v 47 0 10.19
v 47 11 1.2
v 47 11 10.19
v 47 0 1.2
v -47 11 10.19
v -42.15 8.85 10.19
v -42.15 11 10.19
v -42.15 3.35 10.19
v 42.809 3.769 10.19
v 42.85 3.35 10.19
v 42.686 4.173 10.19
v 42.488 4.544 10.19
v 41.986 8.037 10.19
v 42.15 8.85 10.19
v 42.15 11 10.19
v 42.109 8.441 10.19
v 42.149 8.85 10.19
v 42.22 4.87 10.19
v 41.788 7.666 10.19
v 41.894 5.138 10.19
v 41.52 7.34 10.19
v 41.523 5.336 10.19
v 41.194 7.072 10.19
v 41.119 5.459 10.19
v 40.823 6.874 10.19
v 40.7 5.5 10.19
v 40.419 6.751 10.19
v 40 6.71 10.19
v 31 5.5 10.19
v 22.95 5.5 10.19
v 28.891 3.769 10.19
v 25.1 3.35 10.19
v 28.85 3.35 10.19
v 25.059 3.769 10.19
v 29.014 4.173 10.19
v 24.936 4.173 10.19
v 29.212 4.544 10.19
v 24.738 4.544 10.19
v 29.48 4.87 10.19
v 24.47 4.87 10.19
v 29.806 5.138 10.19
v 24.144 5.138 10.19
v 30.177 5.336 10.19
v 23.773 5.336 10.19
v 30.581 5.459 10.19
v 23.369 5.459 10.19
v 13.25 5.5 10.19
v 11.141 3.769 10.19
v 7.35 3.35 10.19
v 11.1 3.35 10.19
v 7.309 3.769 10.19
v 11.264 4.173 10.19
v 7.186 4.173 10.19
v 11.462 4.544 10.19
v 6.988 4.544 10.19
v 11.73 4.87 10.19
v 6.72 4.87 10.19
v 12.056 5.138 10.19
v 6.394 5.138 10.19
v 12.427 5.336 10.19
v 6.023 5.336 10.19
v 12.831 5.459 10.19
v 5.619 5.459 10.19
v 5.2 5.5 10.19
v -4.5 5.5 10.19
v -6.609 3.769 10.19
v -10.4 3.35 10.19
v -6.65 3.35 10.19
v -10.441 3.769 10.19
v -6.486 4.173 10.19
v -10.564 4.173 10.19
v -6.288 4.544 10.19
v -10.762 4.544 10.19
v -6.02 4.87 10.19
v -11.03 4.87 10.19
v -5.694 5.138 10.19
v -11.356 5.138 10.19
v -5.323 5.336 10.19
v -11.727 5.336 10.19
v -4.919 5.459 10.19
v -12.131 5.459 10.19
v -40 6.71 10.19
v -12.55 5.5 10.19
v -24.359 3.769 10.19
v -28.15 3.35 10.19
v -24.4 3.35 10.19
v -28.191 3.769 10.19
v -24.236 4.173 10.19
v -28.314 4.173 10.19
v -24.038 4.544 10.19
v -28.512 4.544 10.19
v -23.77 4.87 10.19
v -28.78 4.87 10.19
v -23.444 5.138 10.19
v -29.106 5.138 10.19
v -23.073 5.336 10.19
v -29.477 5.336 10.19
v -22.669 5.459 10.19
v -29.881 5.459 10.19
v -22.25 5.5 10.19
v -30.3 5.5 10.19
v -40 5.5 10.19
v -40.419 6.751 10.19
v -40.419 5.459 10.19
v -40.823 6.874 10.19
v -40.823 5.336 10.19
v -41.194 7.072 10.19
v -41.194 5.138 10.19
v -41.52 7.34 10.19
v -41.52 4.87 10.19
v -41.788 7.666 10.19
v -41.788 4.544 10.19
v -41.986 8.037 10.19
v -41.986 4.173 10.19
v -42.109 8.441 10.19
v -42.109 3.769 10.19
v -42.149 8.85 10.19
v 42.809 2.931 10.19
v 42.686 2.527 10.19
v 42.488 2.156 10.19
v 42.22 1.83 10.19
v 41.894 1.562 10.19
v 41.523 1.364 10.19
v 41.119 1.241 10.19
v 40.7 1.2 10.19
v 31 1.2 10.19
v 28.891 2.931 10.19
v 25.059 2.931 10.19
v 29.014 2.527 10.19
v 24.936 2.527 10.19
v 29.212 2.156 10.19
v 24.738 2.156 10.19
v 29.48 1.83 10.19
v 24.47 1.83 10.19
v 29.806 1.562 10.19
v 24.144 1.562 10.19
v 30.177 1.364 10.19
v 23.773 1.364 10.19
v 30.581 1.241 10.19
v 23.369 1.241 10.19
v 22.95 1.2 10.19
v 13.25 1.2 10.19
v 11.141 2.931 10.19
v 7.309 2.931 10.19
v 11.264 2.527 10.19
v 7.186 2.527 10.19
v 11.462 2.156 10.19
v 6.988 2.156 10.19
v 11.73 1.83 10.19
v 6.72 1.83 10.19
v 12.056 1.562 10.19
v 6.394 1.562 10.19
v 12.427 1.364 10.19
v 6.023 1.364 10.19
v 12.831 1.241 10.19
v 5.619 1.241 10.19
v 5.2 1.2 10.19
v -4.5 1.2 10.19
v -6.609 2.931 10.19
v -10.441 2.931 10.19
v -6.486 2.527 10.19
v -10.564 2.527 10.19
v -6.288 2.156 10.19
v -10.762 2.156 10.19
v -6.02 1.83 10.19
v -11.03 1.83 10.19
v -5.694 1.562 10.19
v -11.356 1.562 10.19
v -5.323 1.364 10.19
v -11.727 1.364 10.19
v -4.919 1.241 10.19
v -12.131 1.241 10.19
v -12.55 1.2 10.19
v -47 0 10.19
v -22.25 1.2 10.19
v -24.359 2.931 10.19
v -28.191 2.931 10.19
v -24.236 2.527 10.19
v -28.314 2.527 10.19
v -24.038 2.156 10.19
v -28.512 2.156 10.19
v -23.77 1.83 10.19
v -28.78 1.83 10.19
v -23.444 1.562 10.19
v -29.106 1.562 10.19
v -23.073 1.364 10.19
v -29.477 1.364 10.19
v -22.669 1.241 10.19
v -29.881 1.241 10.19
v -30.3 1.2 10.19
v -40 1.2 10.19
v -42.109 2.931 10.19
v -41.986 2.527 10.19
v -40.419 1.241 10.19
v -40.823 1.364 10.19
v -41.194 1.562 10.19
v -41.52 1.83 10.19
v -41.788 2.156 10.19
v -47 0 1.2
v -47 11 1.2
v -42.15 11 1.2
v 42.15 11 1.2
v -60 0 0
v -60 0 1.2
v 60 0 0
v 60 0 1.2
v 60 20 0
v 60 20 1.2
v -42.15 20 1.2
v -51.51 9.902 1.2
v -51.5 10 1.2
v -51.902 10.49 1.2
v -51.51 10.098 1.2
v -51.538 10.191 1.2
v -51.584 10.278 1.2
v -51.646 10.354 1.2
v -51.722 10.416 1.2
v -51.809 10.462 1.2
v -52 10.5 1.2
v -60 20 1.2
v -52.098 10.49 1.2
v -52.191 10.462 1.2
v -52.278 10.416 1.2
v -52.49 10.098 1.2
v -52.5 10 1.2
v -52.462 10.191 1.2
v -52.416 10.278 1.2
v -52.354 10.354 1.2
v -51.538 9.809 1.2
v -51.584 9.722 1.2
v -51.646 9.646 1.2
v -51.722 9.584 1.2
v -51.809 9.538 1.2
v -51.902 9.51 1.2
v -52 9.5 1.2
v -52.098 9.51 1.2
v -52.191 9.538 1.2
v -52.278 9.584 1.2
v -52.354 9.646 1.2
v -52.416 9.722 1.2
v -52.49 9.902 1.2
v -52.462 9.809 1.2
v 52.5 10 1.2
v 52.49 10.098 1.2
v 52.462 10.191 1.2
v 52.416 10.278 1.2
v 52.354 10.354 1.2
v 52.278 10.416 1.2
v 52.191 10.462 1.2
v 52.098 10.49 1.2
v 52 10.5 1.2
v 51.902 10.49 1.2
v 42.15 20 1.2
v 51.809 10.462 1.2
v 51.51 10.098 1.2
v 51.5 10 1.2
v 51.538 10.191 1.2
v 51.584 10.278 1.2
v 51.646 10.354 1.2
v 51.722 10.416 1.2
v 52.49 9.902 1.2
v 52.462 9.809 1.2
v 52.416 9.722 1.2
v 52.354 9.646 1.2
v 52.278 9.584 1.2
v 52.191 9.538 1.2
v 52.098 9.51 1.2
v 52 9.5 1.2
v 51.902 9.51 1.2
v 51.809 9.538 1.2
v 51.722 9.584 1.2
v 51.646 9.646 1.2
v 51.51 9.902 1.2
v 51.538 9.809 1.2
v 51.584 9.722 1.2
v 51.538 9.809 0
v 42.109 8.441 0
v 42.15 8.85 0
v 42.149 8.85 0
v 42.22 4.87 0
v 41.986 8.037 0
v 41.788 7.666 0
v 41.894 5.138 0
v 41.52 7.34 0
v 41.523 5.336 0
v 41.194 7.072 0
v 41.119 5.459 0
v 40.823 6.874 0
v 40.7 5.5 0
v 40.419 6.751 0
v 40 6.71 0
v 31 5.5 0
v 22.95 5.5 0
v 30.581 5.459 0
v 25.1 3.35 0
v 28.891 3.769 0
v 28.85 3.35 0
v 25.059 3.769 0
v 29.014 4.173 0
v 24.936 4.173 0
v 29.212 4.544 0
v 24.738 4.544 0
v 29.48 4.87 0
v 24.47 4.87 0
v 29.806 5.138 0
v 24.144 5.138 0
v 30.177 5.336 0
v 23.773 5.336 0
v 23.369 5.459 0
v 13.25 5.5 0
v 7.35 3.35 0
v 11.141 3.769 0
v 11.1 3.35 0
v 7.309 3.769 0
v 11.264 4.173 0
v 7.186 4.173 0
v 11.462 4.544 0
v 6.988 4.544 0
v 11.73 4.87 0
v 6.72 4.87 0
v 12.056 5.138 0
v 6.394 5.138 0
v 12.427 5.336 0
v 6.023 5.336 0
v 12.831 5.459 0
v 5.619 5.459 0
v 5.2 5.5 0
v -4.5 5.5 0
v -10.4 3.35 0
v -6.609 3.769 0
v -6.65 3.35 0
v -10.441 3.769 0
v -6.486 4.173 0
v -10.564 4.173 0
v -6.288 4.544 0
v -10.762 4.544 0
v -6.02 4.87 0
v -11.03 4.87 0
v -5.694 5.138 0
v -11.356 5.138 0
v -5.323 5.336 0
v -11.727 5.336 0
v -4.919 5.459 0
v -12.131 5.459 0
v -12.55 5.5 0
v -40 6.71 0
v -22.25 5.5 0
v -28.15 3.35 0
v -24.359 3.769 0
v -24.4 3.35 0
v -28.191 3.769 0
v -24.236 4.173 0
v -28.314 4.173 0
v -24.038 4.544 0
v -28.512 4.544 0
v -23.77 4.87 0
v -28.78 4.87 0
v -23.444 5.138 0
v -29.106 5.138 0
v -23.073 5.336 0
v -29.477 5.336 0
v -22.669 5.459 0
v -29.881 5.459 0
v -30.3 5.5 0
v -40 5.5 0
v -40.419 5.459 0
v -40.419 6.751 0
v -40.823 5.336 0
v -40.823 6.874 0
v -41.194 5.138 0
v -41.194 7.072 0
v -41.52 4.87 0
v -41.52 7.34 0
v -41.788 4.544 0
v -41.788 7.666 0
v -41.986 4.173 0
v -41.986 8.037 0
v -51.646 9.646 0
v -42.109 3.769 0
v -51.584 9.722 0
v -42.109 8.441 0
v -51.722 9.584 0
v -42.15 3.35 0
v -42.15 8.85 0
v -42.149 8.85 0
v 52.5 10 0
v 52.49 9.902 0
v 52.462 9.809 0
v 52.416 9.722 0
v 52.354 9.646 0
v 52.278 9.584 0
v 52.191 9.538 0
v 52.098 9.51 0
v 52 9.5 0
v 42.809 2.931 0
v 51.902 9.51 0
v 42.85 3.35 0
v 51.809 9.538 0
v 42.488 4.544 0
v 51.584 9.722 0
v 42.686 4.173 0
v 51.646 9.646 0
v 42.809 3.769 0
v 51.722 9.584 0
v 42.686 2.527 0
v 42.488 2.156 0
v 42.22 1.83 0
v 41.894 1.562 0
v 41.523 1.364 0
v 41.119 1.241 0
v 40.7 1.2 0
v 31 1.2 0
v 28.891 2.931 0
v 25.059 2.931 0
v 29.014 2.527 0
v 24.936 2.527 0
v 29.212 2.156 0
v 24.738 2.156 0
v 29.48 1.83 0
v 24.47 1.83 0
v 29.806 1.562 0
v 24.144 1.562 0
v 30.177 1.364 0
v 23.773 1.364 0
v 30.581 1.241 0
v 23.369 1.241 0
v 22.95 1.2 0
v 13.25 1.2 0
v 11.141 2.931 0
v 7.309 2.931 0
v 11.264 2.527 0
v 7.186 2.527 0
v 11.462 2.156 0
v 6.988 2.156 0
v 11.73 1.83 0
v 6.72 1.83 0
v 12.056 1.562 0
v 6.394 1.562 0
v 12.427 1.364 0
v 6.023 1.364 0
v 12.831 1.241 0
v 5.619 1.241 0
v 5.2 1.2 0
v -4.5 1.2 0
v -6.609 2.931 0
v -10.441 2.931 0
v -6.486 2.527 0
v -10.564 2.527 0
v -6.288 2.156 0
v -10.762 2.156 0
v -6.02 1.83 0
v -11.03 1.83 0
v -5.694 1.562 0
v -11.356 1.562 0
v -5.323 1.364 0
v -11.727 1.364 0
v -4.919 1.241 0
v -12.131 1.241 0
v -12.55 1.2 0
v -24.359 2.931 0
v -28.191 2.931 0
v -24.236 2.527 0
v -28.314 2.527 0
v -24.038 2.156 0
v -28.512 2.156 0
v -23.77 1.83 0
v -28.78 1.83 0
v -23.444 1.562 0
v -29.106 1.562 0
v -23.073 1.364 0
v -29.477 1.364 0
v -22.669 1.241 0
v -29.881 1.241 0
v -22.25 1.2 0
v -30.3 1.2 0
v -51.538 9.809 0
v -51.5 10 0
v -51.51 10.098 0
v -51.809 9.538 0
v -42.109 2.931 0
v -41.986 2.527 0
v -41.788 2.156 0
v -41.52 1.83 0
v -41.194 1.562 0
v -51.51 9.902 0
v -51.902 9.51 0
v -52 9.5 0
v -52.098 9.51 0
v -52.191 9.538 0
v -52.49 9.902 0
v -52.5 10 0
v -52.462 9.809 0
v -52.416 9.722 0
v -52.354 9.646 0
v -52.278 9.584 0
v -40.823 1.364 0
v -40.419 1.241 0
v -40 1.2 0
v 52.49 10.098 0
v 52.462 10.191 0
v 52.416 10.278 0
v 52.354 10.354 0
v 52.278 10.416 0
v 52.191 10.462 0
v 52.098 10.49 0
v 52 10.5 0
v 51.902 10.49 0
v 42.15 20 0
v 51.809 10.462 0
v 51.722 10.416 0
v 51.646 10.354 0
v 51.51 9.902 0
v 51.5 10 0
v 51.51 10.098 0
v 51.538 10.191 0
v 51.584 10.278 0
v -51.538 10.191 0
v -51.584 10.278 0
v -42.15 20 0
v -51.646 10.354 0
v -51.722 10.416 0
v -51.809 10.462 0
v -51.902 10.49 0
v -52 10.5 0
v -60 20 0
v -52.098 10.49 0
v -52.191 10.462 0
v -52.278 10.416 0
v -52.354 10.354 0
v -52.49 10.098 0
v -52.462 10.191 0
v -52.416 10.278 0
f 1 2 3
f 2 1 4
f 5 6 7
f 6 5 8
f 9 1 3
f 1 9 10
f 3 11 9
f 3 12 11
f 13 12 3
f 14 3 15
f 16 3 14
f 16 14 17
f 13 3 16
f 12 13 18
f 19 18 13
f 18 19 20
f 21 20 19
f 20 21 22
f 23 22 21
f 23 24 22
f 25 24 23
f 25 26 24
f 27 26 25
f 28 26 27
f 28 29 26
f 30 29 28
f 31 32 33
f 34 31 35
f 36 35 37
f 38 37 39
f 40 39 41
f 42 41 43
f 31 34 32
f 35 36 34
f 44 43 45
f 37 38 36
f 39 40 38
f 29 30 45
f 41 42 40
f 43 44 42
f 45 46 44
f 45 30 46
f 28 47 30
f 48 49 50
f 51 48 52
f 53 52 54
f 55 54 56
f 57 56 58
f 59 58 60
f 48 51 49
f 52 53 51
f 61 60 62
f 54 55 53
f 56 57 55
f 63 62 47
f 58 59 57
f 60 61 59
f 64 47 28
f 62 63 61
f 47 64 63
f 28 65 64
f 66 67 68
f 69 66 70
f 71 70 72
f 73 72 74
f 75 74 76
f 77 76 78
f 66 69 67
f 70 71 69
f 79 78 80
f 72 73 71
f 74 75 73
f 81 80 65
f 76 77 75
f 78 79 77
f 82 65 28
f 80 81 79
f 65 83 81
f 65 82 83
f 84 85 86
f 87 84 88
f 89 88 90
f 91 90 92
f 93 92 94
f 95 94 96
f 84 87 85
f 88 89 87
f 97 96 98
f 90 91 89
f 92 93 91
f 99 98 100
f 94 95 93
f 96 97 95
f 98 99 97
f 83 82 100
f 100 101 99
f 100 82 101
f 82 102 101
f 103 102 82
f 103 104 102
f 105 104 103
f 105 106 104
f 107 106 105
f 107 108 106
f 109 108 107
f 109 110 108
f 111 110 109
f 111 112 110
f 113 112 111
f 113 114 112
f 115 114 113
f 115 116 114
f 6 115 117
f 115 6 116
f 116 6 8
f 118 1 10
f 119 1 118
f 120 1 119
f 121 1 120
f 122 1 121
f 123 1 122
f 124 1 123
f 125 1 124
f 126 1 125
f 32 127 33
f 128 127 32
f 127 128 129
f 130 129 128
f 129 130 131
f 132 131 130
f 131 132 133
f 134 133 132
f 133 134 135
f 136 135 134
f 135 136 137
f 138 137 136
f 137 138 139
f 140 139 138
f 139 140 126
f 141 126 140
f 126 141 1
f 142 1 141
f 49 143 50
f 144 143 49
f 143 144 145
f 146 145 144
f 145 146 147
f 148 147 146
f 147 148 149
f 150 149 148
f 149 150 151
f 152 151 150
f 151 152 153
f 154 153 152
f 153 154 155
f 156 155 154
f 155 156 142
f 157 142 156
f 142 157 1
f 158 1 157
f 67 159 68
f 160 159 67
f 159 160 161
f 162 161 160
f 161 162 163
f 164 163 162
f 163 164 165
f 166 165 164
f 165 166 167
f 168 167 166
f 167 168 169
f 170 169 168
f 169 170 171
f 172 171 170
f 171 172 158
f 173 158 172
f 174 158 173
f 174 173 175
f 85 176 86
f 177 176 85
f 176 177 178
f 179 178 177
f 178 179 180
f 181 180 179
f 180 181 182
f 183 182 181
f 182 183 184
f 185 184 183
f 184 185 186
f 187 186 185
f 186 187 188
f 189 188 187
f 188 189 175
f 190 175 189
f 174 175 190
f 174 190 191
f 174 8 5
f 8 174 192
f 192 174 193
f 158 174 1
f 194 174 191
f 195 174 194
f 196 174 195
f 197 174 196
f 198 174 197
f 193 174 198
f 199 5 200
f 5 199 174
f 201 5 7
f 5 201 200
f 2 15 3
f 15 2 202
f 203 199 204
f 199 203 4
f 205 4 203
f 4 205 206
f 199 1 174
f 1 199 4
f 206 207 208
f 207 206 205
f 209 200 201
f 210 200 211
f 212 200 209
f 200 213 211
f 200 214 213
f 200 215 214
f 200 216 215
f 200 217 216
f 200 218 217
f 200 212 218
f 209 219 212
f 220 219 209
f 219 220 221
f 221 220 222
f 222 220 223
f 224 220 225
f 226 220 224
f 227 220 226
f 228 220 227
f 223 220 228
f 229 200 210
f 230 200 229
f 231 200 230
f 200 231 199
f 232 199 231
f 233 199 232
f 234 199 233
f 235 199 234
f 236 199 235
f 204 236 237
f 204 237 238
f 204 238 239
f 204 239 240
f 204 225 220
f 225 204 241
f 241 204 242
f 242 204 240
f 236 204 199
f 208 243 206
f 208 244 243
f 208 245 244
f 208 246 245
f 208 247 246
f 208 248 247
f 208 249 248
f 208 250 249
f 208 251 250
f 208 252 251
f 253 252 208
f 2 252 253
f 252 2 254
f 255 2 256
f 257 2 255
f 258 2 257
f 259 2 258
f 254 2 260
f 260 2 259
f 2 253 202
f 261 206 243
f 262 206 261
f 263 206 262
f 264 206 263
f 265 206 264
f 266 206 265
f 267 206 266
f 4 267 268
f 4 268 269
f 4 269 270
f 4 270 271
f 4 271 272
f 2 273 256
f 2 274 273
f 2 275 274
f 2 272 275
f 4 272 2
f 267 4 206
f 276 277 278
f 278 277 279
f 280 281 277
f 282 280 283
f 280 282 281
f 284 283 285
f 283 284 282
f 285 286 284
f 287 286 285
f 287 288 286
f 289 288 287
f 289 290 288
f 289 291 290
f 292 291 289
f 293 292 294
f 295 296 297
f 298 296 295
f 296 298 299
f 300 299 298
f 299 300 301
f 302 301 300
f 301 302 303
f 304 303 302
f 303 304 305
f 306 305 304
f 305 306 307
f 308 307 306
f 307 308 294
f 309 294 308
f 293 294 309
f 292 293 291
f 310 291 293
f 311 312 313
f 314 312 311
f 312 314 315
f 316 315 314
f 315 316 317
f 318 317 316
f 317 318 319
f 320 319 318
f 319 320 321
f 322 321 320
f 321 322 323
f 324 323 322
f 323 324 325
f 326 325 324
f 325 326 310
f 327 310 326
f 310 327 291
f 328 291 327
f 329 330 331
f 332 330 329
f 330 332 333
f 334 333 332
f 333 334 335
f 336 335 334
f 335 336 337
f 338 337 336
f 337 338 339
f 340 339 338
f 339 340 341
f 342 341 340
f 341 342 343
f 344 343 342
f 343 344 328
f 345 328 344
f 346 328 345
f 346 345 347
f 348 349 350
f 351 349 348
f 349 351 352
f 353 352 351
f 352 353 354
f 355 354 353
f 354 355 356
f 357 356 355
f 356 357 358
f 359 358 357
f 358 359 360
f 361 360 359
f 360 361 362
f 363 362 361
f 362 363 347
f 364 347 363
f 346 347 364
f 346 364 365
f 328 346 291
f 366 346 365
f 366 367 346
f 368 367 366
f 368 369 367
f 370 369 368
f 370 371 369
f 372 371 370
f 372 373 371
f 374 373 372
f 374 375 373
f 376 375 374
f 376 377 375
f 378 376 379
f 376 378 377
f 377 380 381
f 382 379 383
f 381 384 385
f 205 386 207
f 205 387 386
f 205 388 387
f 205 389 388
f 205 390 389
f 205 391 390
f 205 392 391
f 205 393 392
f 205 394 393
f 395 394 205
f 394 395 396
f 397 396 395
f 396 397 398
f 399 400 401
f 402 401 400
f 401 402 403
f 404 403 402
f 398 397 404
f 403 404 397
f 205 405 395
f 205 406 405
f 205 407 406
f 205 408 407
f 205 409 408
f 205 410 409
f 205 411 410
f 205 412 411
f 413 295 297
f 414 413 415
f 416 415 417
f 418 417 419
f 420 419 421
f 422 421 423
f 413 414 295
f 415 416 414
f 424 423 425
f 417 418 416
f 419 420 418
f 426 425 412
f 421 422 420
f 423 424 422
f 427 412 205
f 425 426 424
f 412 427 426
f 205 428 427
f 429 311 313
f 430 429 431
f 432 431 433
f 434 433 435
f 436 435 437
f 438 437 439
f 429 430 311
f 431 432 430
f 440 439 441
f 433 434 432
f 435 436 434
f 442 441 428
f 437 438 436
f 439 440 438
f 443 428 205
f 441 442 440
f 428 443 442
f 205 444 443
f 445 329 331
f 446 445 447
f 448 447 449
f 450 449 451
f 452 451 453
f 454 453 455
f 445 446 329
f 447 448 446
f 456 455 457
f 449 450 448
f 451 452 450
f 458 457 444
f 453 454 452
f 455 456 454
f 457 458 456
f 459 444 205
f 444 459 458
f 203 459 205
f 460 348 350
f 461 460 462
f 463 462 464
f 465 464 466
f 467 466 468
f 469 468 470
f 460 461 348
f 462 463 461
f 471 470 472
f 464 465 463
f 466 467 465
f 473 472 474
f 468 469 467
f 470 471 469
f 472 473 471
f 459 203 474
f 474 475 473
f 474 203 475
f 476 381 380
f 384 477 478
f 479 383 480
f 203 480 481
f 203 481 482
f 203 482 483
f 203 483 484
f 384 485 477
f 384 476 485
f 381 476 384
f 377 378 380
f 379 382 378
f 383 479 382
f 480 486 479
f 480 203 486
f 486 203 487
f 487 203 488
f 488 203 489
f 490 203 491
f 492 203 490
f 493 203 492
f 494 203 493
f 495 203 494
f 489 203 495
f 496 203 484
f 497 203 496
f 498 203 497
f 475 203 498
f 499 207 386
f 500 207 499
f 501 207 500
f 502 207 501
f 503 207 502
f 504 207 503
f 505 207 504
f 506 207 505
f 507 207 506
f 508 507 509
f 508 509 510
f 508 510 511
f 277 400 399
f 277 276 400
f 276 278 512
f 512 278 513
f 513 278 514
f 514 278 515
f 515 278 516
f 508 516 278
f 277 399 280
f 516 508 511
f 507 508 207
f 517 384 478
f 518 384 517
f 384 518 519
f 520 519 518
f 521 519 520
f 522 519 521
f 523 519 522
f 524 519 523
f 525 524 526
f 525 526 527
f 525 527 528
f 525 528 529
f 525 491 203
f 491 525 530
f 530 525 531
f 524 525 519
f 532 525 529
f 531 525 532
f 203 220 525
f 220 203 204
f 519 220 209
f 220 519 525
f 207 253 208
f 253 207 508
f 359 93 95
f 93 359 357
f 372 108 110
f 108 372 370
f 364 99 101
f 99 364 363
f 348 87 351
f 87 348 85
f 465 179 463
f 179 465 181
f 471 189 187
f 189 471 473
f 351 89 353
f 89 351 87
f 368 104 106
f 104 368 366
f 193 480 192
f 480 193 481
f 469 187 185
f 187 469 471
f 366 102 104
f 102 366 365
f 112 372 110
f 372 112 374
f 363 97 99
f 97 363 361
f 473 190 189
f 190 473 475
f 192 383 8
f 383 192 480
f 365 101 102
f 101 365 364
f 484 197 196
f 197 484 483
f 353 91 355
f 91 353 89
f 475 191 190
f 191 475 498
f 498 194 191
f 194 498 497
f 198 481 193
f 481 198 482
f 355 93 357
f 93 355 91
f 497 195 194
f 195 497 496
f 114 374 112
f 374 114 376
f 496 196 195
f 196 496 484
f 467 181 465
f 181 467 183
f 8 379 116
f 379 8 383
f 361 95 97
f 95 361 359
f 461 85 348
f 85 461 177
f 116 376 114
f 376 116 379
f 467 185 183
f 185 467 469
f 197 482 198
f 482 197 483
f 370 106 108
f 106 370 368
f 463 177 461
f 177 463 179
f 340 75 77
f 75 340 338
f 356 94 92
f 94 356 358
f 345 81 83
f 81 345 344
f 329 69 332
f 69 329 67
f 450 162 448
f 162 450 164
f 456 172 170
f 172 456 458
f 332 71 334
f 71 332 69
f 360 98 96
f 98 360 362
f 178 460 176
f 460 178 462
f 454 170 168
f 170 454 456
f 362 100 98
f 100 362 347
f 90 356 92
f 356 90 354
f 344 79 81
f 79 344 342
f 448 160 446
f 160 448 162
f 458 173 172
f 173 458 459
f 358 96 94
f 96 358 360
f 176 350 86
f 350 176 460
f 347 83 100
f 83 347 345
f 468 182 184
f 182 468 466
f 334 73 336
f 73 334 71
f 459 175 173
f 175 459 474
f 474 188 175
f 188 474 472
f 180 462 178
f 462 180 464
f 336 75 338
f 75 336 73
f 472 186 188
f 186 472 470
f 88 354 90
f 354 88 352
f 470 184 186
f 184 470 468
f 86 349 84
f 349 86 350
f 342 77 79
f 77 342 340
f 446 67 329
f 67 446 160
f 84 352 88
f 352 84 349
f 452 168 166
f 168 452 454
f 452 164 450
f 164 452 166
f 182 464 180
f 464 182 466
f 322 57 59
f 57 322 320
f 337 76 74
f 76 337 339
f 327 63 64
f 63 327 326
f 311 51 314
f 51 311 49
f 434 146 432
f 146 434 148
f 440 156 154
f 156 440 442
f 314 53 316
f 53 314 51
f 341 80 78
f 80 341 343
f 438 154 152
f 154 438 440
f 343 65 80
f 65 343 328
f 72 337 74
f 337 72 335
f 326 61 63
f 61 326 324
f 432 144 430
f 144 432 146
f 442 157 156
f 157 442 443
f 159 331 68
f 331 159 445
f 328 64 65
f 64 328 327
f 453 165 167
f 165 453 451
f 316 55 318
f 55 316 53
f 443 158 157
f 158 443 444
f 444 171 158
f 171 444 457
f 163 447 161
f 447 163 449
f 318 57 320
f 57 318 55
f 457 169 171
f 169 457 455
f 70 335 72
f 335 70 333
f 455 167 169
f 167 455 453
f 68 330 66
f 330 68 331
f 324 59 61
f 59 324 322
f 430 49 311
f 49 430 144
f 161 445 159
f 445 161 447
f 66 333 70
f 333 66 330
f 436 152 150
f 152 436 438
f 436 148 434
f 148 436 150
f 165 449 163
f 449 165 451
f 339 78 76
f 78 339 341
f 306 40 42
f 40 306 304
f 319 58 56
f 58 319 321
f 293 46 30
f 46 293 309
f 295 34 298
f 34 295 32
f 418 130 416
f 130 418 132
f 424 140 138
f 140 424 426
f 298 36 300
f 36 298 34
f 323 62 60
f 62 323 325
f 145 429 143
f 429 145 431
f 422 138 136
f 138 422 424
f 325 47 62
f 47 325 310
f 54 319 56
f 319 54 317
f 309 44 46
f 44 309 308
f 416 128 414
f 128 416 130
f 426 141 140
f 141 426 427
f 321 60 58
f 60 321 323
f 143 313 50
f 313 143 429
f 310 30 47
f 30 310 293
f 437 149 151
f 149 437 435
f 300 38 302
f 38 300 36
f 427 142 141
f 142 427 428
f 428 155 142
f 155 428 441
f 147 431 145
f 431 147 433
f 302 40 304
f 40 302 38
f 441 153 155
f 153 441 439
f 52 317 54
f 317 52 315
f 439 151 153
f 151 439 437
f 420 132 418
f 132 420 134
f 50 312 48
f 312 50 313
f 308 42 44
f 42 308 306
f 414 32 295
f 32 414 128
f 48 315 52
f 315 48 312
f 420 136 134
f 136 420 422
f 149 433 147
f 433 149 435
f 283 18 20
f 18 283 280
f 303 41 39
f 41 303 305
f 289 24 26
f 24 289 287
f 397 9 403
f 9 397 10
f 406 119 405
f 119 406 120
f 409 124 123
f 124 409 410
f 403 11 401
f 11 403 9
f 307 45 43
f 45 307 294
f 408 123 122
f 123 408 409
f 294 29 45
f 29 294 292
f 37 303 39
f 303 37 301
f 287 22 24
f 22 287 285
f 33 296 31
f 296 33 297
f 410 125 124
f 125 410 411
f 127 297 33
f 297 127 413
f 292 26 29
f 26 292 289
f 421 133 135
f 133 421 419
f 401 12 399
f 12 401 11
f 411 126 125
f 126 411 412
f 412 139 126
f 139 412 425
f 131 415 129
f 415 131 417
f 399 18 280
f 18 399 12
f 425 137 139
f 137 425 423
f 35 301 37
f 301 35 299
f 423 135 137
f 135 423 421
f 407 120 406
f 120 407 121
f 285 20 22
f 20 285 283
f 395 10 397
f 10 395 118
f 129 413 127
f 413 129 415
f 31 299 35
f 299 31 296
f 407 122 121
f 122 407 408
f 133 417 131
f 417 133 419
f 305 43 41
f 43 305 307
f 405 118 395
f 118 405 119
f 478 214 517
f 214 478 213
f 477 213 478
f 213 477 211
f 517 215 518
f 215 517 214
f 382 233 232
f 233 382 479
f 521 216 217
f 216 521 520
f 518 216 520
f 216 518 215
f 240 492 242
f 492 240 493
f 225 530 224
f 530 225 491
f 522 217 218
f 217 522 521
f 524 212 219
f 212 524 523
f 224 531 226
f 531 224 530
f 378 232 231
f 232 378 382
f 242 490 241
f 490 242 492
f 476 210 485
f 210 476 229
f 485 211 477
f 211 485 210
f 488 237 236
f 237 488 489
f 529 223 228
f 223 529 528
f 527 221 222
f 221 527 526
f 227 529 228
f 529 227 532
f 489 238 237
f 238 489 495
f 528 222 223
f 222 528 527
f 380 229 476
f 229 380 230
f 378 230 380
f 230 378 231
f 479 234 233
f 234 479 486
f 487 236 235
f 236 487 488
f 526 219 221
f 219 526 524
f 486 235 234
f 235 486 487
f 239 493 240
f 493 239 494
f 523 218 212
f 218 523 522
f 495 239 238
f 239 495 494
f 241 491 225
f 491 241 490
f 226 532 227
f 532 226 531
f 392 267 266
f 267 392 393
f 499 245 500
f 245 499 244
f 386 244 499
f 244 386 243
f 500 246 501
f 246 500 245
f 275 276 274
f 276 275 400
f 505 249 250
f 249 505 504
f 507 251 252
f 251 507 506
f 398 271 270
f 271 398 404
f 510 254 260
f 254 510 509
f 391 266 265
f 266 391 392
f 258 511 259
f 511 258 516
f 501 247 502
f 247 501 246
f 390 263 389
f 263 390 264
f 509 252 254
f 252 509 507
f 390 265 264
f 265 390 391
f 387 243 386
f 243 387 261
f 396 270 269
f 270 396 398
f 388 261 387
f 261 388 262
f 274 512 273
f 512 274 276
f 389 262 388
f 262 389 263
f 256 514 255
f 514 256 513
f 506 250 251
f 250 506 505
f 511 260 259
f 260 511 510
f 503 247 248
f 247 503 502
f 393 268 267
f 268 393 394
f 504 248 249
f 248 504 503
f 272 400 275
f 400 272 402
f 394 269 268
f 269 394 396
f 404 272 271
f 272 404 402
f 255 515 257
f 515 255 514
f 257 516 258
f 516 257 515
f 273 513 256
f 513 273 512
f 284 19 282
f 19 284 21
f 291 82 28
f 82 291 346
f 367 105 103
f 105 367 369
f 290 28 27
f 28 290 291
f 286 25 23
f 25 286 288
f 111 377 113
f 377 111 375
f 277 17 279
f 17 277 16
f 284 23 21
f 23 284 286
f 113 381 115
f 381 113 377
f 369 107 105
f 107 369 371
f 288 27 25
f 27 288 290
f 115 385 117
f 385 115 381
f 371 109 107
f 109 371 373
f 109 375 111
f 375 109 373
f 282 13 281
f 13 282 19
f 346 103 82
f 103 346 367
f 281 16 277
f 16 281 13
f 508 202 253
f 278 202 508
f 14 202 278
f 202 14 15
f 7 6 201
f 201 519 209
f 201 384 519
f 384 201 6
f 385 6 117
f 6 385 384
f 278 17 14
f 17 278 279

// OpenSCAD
$fn = 32;
epsilon=0.01;

slotx = 94;
sloty = 11;
slotz = 9;
numslots = 5;

frontx = 120;
fronty = 20;
frontz = 1.2;

slitx = 80;
slity = 4.3;
slitdist = 2;

pindiam = 1;
pindist = 8;

difference() {
  union() {
    translate([-slotx/2, 0, frontz-epsilon]) cube([slotx, sloty, slotz]); // slot filler
    translate([-frontx/2, 0, 0]) cube([frontx, fronty, frontz]);  // front plate
  }
  translate([0, sloty-slity/2+epsilon, -epsilon]) hull() { // slit 1
    translate([+slitx/2,0,0]) cylinder(d=slity, h=2*slotz);
    translate([-slitx/2,0,0]) cylinder(d=slity, h=2*slotz);
  }
  swidth = slitx/numslots-slity-slitdist;
  for (i = [0:numslots-1]) {
    translate([i*(slitx/numslots+slity/2-slitdist/numslots), 0, 0]) {
      translate([-slitx/2, (sloty-slity)/2, -epsilon]) hull() {    // slit 2
        translate([swidth,0,0]) cylinder(d=slity, h=2*slotz);
        translate([0,0,0]) cylinder(d=slity, h=2*slotz);
      }
    }
  }
  for (i=[-1,+1]) { // pinhole
    pinydist = max(pindist, fronty/2);
    translate([i*frontx/2-i*pindist, pinydist, -epsilon]) cylinder(d=pindiam, h=2*slotz);
  }
  translate([-(slitx+slity)/2, sloty-slity/2, -epsilon]) cube([slitx+slity, fronty, 2*slotz]); // gap
}

//module roundedcube(r=4, x=10, y=10, z=2) {
//  translate([-x/2,0,0]) hull() {
//    translate([r,   r,   0]) cylinder(r=r, h=z);
//    translate([r,   y-r, 0]) cylinder(r=r, h=z);
//    translate([x-r, r,   0]) cylinder(r=r, h=z);
//    translate([x-r, y-r, 0]) cylinder(r=r, h=z);
//  }
//}
